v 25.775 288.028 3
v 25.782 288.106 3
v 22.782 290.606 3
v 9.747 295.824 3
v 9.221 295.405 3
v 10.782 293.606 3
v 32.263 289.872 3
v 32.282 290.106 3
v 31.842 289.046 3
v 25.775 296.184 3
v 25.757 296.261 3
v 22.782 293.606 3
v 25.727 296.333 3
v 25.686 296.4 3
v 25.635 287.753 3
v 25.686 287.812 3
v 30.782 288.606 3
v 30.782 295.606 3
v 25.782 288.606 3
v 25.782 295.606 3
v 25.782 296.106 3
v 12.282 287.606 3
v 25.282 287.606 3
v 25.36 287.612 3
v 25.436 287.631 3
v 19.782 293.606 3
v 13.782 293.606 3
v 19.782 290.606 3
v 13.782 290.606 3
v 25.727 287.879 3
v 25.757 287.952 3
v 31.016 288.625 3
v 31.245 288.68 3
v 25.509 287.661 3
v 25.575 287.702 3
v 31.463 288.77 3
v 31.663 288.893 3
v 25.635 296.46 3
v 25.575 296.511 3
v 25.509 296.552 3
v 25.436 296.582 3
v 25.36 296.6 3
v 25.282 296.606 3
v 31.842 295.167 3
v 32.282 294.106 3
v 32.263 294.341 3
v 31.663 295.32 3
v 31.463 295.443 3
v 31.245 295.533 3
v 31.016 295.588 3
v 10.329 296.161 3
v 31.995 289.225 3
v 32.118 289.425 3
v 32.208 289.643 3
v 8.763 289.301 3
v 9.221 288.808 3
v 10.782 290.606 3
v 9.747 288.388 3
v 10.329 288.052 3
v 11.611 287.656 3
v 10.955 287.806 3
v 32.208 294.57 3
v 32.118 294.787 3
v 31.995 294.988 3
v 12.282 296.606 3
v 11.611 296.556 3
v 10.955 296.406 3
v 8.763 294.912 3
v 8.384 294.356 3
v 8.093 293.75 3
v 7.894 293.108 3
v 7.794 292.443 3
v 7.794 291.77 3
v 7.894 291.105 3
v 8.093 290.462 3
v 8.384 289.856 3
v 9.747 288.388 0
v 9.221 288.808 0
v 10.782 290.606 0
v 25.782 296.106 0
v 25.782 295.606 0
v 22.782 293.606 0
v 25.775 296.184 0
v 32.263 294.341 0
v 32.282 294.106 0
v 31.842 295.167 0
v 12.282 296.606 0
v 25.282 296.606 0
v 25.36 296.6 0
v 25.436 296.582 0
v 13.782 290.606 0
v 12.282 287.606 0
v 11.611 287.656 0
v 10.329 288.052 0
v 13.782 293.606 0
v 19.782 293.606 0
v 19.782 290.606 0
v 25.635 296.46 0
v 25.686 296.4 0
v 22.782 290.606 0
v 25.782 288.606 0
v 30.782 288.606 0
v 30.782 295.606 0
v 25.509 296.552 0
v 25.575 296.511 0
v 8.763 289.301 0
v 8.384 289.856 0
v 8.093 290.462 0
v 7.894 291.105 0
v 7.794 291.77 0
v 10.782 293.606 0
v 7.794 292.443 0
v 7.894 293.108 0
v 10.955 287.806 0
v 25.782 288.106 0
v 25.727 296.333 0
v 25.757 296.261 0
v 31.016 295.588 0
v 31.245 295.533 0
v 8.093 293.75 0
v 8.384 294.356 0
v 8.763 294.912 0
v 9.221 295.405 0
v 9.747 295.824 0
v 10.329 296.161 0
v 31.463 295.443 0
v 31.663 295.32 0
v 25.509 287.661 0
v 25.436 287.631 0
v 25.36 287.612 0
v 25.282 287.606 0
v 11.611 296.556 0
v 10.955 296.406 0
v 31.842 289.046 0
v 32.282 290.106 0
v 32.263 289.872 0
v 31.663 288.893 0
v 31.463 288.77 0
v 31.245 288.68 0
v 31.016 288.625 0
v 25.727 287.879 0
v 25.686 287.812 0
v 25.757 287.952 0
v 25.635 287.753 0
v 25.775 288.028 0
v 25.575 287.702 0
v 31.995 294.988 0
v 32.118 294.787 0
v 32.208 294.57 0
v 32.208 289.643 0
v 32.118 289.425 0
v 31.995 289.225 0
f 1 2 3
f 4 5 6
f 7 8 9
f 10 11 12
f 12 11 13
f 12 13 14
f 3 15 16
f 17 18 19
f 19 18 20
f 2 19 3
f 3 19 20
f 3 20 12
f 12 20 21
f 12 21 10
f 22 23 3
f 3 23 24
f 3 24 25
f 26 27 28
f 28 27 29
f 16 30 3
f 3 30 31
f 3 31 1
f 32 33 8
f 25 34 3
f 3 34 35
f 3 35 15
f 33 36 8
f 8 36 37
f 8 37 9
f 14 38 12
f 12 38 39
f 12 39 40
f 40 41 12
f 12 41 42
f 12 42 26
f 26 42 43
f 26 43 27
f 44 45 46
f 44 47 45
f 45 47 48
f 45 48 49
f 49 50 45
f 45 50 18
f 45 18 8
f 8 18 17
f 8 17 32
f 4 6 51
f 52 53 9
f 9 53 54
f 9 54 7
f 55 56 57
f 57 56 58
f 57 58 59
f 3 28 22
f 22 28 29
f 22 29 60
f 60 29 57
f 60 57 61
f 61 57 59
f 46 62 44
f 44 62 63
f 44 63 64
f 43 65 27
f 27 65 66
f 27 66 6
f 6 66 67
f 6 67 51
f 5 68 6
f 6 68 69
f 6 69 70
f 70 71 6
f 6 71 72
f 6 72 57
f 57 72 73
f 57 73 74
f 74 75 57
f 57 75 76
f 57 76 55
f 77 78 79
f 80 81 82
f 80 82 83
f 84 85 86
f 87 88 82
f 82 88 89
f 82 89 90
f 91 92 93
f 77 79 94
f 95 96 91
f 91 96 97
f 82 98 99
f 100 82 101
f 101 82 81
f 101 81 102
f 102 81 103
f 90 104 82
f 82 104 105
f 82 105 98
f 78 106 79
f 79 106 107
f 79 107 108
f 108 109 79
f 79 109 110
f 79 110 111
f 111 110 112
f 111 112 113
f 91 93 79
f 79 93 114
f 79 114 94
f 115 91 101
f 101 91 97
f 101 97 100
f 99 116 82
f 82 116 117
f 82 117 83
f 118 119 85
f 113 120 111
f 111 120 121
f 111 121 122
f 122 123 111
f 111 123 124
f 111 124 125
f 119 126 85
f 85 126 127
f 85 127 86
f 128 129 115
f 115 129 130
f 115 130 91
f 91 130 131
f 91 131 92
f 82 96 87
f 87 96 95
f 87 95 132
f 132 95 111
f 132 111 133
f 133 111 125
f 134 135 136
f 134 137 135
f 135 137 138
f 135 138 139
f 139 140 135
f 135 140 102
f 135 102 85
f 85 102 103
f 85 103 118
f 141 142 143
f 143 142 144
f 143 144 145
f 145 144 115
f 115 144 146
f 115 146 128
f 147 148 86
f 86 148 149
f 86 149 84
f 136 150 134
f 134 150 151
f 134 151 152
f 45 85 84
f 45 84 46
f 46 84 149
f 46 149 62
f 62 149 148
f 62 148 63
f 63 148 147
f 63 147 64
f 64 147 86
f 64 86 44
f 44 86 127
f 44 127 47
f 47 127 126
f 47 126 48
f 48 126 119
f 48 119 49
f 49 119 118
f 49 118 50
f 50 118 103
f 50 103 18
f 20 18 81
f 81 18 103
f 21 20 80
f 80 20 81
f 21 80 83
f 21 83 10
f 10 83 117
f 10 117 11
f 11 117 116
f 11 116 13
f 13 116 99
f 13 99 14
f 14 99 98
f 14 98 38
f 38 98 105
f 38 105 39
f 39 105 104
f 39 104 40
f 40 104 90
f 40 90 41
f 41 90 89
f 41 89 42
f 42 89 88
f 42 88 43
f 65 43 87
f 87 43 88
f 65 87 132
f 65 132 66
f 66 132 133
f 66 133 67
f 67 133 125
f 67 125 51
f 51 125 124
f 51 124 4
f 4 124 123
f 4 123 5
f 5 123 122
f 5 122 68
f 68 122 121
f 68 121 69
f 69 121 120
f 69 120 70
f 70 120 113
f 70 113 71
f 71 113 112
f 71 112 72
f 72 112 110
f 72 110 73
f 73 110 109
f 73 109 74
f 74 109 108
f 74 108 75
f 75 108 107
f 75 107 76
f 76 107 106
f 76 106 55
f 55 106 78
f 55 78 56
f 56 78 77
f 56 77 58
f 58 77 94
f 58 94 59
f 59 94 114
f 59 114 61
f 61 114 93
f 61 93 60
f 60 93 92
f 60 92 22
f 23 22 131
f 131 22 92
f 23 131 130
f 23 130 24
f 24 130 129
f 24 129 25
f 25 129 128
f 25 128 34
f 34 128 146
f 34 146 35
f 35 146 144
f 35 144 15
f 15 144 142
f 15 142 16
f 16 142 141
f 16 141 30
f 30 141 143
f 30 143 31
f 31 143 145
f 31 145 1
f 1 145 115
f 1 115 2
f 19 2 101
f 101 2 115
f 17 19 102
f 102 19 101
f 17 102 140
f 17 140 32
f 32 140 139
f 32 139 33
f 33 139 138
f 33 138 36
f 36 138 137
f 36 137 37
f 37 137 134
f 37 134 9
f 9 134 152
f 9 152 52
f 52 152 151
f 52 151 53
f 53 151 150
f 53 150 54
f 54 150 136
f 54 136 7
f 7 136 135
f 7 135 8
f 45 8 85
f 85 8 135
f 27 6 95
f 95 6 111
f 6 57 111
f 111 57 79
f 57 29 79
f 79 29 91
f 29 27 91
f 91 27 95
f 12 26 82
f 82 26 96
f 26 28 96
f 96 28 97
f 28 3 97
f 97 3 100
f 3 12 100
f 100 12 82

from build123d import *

# Parameters (mm, degrees)
MODEL_W                 = 3
MODEL_H                 = 3
SALIENTE_EXTRUIR2_DEPTH = 3


with BuildPart() as part:
    # Model → Saliente-Extruir2 (new body)
    with BuildSketch(Plane.XY):
        with BuildLine():
            Line((25.281533596, 296.606231861), (12.281533596, 296.606231861))
            ThreePointArc((12.281533596, 296.606231861), (7.781533596, 292.106231861), (12.281533596, 287.606231861))
            Line((12.281533596, 287.606231861), (25.281533596, 287.606231861))
            ThreePointArc((25.281533596, 287.606231861), (25.635086987, 287.752678471), (25.781533596, 288.106231861))
            Line((25.781533596, 288.106231861), (25.781533596, 288.606231861))
            Line((25.781533596, 288.606231861), (30.781533596, 288.606231861))
            ThreePointArc((30.781533596, 288.606231861), (31.842193768, 289.045571689), (32.281533596, 290.106231861))
            Line((32.281533596, 290.106231861), (32.281533596, 294.106231861))
            ThreePointArc((32.281533596, 294.106231861), (31.842193768, 295.166892033), (30.781533596, 295.606231861))
            Line((30.781533596, 295.606231861), (25.781533596, 295.606231861))
            Line((25.781533596, 295.606231861), (25.781533596, 296.106231861))
            ThreePointArc((25.781533596, 296.106231861), (25.635086987, 296.459785252), (25.281533596, 296.606231861))
        make_face()
        with Locations((12.281533596, 292.106231861)):
            Rectangle(MODEL_W, MODEL_H, mode=Mode.SUBTRACT)
        with Locations((21.281533596, 292.106231861)):
            Rectangle(MODEL_W, MODEL_H, mode=Mode.SUBTRACT)
    extrude(amount=SALIENTE_EXTRUIR2_DEPTH)


solid = part.part
